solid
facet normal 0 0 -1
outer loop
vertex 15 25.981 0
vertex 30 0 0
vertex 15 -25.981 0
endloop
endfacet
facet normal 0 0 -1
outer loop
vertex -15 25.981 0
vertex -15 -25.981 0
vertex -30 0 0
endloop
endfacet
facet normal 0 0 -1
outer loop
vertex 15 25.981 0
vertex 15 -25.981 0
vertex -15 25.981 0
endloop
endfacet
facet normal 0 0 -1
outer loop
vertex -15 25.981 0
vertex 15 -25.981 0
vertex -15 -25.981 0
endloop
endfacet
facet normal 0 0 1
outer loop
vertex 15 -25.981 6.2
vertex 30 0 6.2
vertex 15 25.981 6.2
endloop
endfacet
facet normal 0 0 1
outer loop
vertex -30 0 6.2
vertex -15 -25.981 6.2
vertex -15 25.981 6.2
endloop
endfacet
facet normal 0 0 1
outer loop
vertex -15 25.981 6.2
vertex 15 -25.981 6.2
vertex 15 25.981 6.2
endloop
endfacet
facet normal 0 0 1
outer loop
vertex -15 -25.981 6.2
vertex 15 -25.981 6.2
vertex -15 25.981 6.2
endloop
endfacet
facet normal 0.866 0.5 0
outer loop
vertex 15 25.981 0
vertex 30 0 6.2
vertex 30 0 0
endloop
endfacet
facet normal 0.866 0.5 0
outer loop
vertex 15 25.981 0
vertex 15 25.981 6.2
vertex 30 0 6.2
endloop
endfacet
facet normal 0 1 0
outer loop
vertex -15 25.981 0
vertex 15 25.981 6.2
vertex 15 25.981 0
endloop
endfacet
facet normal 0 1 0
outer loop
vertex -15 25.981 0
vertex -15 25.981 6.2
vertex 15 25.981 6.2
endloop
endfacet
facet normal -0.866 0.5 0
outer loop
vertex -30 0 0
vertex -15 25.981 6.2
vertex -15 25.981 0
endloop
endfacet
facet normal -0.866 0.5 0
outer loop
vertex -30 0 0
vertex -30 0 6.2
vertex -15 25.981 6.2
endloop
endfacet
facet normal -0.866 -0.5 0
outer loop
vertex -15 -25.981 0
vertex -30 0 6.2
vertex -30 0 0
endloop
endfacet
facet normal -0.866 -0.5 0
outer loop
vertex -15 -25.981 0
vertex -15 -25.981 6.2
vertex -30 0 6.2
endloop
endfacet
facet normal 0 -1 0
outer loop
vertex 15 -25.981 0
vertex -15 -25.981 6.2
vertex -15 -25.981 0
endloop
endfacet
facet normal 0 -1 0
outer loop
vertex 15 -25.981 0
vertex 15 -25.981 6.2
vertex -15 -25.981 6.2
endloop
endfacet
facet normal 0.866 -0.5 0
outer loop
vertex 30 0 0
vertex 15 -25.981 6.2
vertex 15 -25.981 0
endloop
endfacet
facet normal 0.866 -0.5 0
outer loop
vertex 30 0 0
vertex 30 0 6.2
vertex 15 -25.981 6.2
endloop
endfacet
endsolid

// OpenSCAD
color("Peru", 1.0)
{
    // hexagon base
    linear_extrude(height = 6.2, center = false, convexity = 10, twist = 0)
    circle(30, $fn=6);
}
